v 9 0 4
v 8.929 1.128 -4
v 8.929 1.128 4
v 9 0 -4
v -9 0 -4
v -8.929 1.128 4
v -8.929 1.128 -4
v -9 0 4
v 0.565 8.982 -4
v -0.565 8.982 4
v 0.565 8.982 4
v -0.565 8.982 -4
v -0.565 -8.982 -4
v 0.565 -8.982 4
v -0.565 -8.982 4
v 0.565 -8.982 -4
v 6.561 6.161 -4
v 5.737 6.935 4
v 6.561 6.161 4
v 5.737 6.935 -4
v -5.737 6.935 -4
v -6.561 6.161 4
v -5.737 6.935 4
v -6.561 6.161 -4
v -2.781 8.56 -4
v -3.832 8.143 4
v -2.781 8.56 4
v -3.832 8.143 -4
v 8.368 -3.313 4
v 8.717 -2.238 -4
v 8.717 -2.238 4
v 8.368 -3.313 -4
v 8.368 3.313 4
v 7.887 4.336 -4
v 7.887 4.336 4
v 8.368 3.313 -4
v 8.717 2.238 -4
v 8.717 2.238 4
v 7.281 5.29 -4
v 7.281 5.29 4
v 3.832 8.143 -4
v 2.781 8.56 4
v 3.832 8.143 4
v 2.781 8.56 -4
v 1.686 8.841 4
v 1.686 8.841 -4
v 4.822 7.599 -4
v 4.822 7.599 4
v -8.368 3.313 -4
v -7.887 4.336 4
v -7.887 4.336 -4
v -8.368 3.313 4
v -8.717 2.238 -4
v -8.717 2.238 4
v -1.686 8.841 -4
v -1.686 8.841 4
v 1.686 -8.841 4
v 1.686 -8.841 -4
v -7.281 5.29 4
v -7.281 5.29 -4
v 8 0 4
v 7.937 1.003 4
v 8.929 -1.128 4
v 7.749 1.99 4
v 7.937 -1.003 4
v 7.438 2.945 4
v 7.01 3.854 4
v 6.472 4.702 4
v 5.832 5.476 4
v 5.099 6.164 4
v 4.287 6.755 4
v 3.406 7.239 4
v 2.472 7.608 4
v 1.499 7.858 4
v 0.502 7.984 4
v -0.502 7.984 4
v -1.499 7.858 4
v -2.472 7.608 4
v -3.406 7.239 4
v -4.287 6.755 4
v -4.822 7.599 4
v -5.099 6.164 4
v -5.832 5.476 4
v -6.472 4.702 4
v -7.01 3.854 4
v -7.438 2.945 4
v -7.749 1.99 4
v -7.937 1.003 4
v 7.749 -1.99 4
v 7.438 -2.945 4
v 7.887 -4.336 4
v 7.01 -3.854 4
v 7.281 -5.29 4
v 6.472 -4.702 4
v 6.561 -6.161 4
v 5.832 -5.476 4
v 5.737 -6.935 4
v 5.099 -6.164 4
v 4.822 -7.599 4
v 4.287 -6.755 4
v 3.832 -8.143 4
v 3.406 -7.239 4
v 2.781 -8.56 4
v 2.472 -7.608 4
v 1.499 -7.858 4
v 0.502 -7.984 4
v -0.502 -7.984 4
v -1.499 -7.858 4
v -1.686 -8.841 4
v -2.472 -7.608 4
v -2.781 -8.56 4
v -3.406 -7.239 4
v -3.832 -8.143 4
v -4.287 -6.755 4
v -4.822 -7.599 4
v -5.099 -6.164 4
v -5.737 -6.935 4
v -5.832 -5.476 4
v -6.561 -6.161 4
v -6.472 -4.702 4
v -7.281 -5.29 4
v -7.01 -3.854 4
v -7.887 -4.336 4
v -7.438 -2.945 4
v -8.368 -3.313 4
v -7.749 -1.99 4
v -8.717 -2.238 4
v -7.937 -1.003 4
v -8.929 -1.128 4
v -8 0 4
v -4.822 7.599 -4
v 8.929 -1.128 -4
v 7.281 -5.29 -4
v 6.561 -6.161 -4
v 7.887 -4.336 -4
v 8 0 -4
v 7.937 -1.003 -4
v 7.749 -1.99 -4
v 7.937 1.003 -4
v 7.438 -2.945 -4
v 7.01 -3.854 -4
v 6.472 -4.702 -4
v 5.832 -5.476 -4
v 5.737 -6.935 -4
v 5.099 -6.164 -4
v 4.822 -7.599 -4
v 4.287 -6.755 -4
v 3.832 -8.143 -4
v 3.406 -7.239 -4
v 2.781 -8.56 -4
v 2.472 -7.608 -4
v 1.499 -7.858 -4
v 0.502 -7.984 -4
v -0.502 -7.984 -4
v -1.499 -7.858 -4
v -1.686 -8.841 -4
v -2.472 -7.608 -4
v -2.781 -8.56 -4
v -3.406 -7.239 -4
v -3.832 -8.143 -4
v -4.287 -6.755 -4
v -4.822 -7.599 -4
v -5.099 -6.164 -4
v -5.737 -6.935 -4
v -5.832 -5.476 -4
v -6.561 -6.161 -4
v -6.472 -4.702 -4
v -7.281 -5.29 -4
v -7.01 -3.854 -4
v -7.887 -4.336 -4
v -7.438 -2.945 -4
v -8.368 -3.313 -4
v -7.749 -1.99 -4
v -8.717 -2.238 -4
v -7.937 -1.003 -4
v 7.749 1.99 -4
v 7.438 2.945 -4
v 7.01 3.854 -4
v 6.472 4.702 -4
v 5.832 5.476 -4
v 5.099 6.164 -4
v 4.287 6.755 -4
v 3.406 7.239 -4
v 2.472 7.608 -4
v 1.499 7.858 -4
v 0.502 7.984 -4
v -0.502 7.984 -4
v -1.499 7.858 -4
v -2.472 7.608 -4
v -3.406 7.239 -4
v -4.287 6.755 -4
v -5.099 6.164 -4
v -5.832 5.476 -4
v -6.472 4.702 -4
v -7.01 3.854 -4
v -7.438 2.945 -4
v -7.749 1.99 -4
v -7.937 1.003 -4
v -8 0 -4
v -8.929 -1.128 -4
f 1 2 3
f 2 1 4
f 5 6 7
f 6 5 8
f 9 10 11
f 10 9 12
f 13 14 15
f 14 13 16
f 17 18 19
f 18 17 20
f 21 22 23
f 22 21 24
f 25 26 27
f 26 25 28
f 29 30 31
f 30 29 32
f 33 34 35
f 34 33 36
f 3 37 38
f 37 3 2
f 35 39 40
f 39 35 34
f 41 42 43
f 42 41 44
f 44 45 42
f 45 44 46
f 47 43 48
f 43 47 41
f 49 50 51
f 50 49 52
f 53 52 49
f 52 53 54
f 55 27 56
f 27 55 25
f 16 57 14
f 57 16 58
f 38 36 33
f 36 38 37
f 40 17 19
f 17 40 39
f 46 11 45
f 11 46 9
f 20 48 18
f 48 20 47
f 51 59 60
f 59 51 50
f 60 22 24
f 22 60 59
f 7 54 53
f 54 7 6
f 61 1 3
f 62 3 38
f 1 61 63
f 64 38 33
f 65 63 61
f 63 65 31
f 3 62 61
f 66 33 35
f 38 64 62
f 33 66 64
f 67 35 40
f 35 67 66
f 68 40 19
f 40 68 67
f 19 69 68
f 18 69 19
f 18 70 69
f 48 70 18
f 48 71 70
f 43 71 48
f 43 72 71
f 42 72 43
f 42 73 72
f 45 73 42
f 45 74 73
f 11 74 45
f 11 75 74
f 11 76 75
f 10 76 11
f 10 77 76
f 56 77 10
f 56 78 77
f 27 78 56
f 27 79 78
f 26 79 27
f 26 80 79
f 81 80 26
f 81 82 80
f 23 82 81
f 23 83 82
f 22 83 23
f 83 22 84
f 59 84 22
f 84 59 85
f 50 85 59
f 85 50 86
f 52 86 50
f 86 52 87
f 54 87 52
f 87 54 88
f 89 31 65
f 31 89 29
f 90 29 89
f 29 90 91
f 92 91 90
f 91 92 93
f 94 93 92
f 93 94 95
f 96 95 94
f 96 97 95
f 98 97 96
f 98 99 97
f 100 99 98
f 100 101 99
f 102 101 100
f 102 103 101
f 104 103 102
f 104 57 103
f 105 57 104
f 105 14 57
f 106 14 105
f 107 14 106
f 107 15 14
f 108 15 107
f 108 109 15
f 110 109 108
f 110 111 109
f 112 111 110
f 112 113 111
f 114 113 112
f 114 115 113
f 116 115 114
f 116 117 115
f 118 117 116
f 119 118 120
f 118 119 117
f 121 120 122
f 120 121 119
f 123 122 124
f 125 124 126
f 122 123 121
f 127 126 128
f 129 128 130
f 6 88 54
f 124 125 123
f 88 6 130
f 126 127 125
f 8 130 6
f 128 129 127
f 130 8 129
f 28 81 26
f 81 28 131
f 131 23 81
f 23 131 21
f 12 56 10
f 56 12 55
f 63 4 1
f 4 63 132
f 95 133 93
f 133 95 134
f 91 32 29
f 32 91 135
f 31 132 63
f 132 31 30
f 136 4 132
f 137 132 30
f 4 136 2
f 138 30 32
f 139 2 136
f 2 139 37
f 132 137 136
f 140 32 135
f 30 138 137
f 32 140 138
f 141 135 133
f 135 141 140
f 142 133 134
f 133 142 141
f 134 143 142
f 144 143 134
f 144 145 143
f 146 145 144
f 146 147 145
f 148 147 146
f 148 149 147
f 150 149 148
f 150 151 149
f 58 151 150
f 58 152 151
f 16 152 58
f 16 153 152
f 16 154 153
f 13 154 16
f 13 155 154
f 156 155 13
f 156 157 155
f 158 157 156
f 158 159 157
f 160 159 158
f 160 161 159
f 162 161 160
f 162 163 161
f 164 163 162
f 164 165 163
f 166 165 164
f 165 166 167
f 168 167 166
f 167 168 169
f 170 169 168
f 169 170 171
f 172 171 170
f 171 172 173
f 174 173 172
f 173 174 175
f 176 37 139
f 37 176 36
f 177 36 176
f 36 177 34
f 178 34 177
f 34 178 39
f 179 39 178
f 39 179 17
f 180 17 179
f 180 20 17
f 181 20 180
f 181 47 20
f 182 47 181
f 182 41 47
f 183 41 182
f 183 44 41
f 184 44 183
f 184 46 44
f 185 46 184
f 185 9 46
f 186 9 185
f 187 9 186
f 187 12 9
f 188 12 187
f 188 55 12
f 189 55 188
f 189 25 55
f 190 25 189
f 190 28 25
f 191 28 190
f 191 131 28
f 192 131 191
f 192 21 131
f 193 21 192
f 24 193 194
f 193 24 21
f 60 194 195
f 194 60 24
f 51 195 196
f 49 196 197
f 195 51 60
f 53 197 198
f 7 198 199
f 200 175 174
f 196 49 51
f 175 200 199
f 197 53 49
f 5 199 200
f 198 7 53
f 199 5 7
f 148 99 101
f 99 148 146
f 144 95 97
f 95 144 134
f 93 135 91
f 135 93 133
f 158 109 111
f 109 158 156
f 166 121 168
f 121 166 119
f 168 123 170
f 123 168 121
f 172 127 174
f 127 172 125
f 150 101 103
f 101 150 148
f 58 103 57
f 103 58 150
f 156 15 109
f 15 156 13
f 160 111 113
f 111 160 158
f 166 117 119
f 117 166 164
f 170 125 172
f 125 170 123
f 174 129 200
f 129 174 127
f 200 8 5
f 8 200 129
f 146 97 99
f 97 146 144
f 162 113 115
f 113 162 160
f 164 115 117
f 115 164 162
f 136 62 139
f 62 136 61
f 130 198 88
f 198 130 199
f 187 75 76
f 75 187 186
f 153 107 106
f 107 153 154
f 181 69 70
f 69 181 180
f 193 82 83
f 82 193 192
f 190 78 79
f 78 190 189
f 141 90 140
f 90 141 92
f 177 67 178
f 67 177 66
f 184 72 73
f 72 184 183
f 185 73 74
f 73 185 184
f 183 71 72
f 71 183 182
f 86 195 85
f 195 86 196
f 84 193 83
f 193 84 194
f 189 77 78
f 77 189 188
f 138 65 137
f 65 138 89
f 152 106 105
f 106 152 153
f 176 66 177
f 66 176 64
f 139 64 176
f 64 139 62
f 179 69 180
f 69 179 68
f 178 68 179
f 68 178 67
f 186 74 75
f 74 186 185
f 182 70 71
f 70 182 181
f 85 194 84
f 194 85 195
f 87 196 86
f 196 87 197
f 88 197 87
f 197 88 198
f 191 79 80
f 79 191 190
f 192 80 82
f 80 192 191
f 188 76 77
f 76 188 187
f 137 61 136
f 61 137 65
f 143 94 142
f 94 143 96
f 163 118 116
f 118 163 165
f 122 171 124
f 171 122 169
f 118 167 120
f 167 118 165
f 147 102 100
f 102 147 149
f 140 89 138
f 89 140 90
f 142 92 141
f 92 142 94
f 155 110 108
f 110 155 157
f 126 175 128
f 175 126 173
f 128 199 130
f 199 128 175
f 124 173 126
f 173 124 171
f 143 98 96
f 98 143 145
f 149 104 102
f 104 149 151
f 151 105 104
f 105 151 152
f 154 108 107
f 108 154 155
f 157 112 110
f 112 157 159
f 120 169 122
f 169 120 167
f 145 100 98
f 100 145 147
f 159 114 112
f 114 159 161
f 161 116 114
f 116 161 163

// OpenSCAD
$fn = 50;


difference() {
	union() {
		translate(v = [0, 0, -4.0000000000]) {
			cylinder(h = 8, r = 9.0000000000);
		}
	}
	union() {
		translate(v = [0, 0, -100.0000000000]) {
			cylinder(h = 200, r = 8);
		}
	}
}
